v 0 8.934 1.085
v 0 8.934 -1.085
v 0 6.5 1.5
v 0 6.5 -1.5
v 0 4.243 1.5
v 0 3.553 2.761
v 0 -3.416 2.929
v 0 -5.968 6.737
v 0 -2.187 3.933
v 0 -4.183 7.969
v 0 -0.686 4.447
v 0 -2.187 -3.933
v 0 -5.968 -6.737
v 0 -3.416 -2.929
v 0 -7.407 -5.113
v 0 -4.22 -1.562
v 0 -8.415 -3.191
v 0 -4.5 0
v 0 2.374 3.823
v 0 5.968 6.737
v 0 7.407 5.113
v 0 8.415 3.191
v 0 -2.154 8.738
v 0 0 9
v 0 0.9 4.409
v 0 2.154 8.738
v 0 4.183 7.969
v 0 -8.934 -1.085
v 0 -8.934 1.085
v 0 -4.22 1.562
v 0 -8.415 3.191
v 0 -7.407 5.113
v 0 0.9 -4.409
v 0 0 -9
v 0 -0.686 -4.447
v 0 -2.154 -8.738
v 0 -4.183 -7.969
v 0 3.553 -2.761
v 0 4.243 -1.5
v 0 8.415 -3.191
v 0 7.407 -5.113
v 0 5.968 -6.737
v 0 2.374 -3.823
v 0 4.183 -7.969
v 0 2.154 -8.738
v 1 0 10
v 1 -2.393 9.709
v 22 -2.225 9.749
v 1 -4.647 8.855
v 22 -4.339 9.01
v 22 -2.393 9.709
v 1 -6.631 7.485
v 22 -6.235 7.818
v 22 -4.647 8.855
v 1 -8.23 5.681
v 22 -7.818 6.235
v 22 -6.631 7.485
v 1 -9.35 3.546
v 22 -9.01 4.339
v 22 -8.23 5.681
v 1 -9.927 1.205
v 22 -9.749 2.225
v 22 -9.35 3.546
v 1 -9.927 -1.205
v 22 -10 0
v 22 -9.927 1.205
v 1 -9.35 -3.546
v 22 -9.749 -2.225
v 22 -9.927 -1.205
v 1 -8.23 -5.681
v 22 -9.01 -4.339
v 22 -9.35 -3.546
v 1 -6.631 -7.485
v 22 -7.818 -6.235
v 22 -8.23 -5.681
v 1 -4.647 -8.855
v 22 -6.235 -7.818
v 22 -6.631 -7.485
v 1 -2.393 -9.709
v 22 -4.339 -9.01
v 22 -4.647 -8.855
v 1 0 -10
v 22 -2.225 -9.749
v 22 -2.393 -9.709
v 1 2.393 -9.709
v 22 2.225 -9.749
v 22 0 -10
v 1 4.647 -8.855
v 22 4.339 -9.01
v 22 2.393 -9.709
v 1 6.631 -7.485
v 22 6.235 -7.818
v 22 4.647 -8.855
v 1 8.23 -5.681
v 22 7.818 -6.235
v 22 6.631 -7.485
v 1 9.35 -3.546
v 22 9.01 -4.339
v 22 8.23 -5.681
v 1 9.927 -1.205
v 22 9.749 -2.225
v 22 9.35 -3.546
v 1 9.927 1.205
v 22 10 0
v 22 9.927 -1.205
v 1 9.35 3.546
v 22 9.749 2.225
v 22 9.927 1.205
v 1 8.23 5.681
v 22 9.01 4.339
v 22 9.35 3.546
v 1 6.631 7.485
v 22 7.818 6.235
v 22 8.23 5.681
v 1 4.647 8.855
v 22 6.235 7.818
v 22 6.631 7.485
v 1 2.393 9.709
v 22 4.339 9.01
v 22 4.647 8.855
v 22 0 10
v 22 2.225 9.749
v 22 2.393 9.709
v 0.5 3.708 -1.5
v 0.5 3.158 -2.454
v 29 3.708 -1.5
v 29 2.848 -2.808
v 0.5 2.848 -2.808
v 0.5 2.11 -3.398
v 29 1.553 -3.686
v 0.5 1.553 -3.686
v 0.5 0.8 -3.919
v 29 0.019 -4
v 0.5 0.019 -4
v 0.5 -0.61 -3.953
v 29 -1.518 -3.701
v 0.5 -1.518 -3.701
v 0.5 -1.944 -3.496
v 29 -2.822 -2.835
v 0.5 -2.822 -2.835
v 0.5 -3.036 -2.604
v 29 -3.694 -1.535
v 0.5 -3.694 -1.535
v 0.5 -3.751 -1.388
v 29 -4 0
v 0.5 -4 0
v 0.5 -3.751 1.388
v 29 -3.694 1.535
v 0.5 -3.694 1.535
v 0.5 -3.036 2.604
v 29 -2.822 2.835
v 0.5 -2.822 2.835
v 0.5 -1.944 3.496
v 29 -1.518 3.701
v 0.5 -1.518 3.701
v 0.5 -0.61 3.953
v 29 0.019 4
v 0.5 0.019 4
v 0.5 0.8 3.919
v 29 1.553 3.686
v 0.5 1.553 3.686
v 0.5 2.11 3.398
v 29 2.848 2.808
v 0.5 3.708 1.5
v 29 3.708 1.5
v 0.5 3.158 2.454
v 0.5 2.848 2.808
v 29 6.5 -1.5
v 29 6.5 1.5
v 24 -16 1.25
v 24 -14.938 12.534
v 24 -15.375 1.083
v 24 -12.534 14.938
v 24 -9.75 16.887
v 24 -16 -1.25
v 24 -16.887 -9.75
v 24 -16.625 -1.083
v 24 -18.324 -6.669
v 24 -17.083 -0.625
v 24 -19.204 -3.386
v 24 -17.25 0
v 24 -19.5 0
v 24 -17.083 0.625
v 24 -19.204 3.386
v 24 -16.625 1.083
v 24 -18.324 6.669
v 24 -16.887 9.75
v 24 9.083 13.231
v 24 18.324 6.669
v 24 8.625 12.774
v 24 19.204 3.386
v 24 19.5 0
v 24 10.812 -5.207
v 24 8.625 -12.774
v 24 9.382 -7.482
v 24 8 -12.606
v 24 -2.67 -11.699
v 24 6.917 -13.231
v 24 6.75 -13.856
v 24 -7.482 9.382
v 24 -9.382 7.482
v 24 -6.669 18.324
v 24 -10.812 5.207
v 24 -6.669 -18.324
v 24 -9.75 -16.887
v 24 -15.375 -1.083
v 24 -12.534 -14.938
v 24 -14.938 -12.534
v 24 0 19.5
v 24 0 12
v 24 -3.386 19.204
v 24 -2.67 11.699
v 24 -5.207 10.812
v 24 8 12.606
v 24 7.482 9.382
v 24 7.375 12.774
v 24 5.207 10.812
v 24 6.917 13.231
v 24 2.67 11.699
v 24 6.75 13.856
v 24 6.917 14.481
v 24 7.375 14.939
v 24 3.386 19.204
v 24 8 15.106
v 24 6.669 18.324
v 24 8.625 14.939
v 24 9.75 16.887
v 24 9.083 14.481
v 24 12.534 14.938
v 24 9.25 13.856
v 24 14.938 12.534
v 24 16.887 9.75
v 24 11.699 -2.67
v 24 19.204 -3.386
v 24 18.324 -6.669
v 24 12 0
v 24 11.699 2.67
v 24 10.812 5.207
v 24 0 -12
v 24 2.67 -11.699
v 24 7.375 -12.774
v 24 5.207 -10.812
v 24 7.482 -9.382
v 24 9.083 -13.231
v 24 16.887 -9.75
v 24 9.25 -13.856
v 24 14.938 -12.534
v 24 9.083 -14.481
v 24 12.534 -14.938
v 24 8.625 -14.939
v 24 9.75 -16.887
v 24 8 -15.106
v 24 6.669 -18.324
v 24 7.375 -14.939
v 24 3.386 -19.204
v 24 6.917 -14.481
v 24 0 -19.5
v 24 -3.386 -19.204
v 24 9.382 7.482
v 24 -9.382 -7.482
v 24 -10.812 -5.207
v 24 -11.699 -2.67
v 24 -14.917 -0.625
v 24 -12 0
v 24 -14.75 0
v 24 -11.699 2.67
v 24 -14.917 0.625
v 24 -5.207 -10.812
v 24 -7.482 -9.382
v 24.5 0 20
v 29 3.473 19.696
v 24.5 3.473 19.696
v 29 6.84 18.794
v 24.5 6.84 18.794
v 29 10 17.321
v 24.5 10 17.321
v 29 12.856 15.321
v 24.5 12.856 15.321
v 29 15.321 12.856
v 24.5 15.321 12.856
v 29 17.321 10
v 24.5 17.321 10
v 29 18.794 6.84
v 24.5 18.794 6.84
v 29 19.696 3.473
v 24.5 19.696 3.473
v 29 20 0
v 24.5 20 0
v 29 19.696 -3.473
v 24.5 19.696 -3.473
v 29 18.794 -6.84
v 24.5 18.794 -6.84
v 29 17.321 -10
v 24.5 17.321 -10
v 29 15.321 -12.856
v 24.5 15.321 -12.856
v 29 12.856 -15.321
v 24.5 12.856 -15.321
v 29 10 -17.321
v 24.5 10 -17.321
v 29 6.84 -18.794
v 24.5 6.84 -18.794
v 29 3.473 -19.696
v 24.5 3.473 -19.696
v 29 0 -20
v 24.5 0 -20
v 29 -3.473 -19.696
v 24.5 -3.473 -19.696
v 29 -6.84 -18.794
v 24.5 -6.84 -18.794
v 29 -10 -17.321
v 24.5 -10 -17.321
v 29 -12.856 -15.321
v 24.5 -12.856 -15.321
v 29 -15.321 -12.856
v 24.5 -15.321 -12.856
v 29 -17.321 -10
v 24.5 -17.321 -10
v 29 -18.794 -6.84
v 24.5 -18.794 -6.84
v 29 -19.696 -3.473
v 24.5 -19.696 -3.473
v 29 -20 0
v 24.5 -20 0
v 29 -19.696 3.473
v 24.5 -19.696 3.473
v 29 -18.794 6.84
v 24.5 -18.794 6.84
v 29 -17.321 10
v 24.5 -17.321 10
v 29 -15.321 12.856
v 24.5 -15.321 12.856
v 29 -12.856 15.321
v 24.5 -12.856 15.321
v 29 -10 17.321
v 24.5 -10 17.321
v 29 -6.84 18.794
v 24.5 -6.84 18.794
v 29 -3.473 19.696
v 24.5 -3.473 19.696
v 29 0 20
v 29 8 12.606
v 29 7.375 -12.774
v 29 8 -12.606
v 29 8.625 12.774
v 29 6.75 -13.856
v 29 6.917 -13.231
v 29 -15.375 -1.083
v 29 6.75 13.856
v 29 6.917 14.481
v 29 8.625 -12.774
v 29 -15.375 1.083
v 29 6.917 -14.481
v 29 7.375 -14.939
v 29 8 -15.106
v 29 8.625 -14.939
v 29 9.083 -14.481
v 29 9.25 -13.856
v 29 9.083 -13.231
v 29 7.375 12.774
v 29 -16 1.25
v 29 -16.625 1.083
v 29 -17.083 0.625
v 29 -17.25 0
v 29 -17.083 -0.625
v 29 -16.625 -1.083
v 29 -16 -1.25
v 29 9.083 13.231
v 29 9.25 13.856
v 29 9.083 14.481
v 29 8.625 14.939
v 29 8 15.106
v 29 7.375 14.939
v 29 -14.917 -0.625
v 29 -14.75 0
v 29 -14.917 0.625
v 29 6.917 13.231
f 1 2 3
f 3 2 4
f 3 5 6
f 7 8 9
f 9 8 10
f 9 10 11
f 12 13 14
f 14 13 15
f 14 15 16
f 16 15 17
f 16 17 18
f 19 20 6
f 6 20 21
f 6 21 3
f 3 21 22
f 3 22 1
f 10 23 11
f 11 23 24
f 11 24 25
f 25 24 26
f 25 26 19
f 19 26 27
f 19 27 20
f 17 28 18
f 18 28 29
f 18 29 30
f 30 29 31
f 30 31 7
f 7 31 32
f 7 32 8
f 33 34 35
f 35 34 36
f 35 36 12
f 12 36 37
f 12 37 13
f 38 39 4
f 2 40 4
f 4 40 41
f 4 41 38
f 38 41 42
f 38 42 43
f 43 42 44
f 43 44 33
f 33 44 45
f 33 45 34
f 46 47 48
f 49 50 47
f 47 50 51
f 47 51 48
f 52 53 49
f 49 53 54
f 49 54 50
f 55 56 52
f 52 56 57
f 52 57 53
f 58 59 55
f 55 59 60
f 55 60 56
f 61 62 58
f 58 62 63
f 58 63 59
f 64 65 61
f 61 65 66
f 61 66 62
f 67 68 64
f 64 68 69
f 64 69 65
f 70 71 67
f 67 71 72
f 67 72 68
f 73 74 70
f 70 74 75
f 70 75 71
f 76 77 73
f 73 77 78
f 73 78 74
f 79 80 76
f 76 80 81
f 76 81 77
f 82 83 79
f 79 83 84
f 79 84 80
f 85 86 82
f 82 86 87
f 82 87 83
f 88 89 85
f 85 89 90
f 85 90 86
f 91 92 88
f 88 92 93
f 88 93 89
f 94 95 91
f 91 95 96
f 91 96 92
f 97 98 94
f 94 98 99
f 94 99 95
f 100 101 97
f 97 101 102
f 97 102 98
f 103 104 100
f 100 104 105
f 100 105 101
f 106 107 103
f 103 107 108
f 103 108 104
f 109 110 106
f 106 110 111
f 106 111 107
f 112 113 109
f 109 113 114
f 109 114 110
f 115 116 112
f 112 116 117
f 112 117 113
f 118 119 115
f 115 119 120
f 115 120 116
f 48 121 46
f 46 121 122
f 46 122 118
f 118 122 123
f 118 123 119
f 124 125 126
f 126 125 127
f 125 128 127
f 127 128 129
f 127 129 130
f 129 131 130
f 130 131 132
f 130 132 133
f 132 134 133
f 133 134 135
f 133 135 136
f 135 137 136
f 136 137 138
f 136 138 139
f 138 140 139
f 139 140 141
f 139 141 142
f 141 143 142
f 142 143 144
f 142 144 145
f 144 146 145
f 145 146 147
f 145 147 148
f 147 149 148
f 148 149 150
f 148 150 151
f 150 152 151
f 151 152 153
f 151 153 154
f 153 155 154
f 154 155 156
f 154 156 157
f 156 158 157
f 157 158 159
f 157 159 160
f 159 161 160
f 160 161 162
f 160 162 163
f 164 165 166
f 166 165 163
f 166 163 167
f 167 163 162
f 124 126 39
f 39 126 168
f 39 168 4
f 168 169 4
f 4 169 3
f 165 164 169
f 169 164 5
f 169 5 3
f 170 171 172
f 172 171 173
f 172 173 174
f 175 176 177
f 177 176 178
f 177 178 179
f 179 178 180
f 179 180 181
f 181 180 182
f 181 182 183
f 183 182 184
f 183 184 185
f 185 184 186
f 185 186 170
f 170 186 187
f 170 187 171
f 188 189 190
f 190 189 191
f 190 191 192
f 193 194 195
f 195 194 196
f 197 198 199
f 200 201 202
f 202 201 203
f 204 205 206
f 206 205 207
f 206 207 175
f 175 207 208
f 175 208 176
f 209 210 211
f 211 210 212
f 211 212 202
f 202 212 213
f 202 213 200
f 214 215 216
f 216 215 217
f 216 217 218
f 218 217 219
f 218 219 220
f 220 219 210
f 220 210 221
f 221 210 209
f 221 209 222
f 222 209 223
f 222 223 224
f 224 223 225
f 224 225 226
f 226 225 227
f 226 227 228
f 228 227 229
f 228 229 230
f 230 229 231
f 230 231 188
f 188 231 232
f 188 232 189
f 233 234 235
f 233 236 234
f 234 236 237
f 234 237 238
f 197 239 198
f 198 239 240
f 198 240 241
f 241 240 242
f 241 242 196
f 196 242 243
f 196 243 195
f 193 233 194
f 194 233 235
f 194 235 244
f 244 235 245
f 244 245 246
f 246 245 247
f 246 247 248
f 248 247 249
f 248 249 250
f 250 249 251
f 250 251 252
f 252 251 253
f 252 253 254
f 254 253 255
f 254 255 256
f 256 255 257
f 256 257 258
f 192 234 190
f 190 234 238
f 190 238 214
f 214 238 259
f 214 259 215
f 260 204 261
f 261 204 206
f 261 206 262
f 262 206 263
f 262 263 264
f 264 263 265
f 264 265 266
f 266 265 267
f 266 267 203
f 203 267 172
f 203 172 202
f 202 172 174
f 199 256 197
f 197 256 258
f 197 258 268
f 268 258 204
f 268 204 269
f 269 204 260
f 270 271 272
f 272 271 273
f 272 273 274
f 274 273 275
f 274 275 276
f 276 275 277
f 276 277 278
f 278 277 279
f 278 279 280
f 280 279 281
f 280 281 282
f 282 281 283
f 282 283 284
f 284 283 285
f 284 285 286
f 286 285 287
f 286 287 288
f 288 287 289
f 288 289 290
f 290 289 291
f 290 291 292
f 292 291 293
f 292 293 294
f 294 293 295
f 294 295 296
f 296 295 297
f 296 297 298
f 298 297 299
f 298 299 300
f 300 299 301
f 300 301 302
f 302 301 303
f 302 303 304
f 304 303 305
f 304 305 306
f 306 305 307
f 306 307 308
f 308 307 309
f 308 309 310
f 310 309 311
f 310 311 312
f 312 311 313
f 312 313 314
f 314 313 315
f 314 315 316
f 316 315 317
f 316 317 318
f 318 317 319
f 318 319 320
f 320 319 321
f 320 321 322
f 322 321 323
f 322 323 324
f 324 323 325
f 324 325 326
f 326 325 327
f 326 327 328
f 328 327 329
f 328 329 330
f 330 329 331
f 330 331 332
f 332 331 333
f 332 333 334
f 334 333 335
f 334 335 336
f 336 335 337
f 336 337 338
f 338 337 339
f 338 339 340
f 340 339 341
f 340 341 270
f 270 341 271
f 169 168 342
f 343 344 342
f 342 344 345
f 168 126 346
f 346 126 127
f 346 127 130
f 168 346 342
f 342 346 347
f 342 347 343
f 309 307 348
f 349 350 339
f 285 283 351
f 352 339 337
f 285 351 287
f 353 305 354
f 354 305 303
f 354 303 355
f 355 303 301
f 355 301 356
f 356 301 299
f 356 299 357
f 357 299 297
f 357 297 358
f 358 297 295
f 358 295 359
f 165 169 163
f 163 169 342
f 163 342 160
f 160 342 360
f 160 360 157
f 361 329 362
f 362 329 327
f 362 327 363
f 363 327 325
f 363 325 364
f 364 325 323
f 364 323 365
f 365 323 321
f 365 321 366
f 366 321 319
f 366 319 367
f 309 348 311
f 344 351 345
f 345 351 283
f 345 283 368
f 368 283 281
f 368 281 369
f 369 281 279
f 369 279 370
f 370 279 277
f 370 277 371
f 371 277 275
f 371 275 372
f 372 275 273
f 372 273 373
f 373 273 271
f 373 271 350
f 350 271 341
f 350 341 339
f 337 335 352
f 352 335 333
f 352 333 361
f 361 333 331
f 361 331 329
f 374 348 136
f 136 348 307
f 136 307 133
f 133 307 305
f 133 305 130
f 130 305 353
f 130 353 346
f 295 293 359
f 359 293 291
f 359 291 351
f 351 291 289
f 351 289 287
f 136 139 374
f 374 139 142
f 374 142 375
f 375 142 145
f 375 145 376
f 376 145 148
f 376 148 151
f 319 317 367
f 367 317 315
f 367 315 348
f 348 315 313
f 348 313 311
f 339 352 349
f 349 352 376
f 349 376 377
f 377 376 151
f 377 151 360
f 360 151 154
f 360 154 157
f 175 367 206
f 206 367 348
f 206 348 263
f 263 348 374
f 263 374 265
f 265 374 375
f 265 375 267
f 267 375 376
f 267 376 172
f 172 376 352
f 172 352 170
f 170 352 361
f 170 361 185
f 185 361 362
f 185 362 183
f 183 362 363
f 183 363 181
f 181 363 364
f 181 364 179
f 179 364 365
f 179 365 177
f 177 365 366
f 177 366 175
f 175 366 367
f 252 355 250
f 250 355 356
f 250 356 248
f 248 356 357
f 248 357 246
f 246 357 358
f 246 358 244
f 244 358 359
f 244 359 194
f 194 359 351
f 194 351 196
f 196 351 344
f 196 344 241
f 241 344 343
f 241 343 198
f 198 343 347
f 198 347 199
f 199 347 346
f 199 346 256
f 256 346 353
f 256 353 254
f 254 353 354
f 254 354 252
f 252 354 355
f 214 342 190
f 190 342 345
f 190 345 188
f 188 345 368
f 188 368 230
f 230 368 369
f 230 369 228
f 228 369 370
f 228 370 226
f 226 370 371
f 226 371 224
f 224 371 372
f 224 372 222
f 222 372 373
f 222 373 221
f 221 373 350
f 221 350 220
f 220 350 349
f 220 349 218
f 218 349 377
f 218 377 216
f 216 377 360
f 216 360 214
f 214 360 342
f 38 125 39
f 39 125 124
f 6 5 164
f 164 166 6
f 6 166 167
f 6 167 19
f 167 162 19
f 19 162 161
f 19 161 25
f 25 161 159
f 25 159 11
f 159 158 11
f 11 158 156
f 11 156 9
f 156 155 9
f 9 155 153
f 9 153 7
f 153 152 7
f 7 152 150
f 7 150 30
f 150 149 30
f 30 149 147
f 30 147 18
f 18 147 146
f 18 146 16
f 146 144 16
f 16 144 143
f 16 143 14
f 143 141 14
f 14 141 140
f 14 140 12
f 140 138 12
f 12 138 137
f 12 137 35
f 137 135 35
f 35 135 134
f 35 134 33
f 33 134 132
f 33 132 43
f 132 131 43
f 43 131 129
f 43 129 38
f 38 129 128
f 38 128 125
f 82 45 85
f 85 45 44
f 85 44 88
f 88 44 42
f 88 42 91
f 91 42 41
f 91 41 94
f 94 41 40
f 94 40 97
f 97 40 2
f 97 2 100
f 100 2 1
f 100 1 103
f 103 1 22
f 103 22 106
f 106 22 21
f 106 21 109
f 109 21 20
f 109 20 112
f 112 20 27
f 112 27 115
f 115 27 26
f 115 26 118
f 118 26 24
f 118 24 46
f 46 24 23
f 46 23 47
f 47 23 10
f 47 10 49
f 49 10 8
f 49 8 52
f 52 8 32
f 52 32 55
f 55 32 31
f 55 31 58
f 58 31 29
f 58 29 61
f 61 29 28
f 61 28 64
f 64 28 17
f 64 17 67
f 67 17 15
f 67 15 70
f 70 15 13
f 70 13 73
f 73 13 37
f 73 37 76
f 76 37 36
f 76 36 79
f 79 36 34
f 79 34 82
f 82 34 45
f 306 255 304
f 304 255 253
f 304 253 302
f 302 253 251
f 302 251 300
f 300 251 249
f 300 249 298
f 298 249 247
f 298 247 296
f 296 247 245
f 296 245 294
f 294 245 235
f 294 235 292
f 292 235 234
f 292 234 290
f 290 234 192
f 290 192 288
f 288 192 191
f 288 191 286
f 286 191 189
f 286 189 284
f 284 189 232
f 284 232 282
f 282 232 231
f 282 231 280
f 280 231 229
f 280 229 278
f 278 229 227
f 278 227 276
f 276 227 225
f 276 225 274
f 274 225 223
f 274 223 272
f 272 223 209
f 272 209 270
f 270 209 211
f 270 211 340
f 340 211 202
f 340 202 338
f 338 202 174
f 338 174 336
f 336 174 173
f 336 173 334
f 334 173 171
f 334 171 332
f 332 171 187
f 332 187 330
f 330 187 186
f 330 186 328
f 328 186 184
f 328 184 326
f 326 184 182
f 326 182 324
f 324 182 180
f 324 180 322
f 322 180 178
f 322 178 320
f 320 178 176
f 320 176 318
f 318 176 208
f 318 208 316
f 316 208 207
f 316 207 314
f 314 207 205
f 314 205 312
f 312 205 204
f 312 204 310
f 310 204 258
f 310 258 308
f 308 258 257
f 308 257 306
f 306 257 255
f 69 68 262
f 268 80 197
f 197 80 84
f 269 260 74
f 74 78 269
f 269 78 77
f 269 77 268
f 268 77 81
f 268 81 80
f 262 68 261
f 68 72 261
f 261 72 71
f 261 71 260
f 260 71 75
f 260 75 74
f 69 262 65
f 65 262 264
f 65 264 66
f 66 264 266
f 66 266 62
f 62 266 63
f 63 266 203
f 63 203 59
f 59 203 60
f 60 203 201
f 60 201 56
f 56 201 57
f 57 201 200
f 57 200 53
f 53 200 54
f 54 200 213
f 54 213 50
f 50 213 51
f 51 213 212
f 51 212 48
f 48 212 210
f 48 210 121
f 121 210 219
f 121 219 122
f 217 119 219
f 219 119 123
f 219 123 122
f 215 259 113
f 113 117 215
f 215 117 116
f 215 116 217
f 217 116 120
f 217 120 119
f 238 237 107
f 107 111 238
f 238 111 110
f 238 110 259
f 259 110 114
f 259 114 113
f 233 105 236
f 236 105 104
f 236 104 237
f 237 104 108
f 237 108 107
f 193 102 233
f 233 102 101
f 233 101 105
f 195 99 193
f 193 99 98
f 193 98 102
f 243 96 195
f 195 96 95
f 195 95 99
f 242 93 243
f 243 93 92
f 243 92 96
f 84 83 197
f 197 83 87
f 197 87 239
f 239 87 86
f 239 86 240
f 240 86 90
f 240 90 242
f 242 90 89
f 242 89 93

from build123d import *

# Parameters (mm, degrees)
SKETCH_1_R          = 10
EXTRUDE_1_DEPTH     = 24
SKETCH_2_R          = 20
EXTRUDE_2_DEPTH     = 5
M3X0_5_1_D          = 2.5
M3X0_5_1_DEPTH      = 7.5
M3X0_5_1_TIP        = 0.751075774
CUT_EXTRUDE_1_REACH = 42.509
CHAMFER_1_SIZE      = 0.5
CHAMFER_2_SIZE      = 1
CHAMFER_3_SIZE      = 0.5
CHAMFER_4_SIZE      = 2


with BuildPart() as part:
    # 草图1 → 凸台-拉伸1 (new body)
    with BuildSketch(Plane(origin=(0, 0, 0), x_dir=(0, 0, -1), z_dir=(1, 0, 0))):
        Circle(SKETCH_1_R)
        with BuildLine():
            Line((-1.5, 6), (-1.5, 6.5))
            Line((-1.5, 6.5), (1.5, 6.5))
            Line((1.5, 6.5), (1.5, 6))
            Line((1.5, 6), (1.5, 3.708099244))
            ThreePointArc((1.5, 3.708099244), (0, -4), (-1.5, 3.708099244))
            Line((-1.5, 3.708099244), (-1.5, 6))
        make_face(mode=Mode.SUBTRACT)
    extrude(amount=EXTRUDE_1_DEPTH)

    # 草图2 → 凸台-拉伸2 (add)
    with BuildSketch(Plane(origin=(24, 0, 0), x_dir=(0, 0, -1), z_dir=(1, 0, 0))):
        Circle(SKETCH_2_R)
    extrude(amount=EXTRUDE_2_DEPTH)

    # M3x0.5 螺纹孔1
    with Locations(Plane(origin=(29, 0, 0), x_dir=(0, 0, -1), z_dir=(1, 0, 0))):
        with Locations((-13.856406461, 8), (13.856406461, 8), (0, -16)):
            Hole(M3X0_5_1_D / 2, depth=M3X0_5_1_DEPTH)
            with Locations((0, 0, -(M3X0_5_1_DEPTH + M3X0_5_1_TIP / 2))):  # 118° drill point
                Cone(0, M3X0_5_1_D / 2, M3X0_5_1_TIP, mode=Mode.SUBTRACT)

    # 草图5 → 切除-拉伸1 (cut, up to next)
    with BuildSketch(Plane(origin=(29, 0, 0), x_dir=(0, 0, -1), z_dir=(1, 0, 0)), mode=Mode.PRIVATE) as cut_extrude_1_sk1:
        with BuildLine():
            Line((-1.5, 6.5), (-1.5, 3.708099244))
            ThreePointArc((-1.5, 3.708099244), (0, -4), (1.5, 3.708099244))
            Line((1.5, 3.708099244), (1.5, 6.5))
            Line((1.5, 6.5), (-1.5, 6.5))
        make_face()
    cut_extrude_1_tool1 = extrude(cut_extrude_1_sk1.sketch, amount=-CUT_EXTRUDE_1_REACH, mode=Mode.PRIVATE) & part.part
    add(cut_extrude_1_tool1.solids().sort_by_distance((29, 0.697639, 0))[0], mode=Mode.SUBTRACT)

    # 倒角1
    chamfer_1_edges = [part.edges().sort_by_distance(p)[0] for p in [
        (0, -4, 0),
    ]]
    chamfer(chamfer_1_edges, length=CHAMFER_1_SIZE)

    # 倒角2
    chamfer_2_edges = [part.edges().sort_by_distance(p)[0] for p in [
        (0, 0, 10),
    ]]
    chamfer(chamfer_2_edges, length=CHAMFER_2_SIZE)

    # 倒角3
    chamfer_3_edges = [part.edges().sort_by_distance(p)[0] for p in [
        (24, 0, 20),
    ]]
    chamfer(chamfer_3_edges, length=CHAMFER_3_SIZE)

    # 倒角4
    chamfer_4_edges = [part.edges().sort_by_distance(p)[0] for p in [
        (24, 0, 10),
    ]]
    chamfer(chamfer_4_edges, length=CHAMFER_4_SIZE)


solid = part.part
